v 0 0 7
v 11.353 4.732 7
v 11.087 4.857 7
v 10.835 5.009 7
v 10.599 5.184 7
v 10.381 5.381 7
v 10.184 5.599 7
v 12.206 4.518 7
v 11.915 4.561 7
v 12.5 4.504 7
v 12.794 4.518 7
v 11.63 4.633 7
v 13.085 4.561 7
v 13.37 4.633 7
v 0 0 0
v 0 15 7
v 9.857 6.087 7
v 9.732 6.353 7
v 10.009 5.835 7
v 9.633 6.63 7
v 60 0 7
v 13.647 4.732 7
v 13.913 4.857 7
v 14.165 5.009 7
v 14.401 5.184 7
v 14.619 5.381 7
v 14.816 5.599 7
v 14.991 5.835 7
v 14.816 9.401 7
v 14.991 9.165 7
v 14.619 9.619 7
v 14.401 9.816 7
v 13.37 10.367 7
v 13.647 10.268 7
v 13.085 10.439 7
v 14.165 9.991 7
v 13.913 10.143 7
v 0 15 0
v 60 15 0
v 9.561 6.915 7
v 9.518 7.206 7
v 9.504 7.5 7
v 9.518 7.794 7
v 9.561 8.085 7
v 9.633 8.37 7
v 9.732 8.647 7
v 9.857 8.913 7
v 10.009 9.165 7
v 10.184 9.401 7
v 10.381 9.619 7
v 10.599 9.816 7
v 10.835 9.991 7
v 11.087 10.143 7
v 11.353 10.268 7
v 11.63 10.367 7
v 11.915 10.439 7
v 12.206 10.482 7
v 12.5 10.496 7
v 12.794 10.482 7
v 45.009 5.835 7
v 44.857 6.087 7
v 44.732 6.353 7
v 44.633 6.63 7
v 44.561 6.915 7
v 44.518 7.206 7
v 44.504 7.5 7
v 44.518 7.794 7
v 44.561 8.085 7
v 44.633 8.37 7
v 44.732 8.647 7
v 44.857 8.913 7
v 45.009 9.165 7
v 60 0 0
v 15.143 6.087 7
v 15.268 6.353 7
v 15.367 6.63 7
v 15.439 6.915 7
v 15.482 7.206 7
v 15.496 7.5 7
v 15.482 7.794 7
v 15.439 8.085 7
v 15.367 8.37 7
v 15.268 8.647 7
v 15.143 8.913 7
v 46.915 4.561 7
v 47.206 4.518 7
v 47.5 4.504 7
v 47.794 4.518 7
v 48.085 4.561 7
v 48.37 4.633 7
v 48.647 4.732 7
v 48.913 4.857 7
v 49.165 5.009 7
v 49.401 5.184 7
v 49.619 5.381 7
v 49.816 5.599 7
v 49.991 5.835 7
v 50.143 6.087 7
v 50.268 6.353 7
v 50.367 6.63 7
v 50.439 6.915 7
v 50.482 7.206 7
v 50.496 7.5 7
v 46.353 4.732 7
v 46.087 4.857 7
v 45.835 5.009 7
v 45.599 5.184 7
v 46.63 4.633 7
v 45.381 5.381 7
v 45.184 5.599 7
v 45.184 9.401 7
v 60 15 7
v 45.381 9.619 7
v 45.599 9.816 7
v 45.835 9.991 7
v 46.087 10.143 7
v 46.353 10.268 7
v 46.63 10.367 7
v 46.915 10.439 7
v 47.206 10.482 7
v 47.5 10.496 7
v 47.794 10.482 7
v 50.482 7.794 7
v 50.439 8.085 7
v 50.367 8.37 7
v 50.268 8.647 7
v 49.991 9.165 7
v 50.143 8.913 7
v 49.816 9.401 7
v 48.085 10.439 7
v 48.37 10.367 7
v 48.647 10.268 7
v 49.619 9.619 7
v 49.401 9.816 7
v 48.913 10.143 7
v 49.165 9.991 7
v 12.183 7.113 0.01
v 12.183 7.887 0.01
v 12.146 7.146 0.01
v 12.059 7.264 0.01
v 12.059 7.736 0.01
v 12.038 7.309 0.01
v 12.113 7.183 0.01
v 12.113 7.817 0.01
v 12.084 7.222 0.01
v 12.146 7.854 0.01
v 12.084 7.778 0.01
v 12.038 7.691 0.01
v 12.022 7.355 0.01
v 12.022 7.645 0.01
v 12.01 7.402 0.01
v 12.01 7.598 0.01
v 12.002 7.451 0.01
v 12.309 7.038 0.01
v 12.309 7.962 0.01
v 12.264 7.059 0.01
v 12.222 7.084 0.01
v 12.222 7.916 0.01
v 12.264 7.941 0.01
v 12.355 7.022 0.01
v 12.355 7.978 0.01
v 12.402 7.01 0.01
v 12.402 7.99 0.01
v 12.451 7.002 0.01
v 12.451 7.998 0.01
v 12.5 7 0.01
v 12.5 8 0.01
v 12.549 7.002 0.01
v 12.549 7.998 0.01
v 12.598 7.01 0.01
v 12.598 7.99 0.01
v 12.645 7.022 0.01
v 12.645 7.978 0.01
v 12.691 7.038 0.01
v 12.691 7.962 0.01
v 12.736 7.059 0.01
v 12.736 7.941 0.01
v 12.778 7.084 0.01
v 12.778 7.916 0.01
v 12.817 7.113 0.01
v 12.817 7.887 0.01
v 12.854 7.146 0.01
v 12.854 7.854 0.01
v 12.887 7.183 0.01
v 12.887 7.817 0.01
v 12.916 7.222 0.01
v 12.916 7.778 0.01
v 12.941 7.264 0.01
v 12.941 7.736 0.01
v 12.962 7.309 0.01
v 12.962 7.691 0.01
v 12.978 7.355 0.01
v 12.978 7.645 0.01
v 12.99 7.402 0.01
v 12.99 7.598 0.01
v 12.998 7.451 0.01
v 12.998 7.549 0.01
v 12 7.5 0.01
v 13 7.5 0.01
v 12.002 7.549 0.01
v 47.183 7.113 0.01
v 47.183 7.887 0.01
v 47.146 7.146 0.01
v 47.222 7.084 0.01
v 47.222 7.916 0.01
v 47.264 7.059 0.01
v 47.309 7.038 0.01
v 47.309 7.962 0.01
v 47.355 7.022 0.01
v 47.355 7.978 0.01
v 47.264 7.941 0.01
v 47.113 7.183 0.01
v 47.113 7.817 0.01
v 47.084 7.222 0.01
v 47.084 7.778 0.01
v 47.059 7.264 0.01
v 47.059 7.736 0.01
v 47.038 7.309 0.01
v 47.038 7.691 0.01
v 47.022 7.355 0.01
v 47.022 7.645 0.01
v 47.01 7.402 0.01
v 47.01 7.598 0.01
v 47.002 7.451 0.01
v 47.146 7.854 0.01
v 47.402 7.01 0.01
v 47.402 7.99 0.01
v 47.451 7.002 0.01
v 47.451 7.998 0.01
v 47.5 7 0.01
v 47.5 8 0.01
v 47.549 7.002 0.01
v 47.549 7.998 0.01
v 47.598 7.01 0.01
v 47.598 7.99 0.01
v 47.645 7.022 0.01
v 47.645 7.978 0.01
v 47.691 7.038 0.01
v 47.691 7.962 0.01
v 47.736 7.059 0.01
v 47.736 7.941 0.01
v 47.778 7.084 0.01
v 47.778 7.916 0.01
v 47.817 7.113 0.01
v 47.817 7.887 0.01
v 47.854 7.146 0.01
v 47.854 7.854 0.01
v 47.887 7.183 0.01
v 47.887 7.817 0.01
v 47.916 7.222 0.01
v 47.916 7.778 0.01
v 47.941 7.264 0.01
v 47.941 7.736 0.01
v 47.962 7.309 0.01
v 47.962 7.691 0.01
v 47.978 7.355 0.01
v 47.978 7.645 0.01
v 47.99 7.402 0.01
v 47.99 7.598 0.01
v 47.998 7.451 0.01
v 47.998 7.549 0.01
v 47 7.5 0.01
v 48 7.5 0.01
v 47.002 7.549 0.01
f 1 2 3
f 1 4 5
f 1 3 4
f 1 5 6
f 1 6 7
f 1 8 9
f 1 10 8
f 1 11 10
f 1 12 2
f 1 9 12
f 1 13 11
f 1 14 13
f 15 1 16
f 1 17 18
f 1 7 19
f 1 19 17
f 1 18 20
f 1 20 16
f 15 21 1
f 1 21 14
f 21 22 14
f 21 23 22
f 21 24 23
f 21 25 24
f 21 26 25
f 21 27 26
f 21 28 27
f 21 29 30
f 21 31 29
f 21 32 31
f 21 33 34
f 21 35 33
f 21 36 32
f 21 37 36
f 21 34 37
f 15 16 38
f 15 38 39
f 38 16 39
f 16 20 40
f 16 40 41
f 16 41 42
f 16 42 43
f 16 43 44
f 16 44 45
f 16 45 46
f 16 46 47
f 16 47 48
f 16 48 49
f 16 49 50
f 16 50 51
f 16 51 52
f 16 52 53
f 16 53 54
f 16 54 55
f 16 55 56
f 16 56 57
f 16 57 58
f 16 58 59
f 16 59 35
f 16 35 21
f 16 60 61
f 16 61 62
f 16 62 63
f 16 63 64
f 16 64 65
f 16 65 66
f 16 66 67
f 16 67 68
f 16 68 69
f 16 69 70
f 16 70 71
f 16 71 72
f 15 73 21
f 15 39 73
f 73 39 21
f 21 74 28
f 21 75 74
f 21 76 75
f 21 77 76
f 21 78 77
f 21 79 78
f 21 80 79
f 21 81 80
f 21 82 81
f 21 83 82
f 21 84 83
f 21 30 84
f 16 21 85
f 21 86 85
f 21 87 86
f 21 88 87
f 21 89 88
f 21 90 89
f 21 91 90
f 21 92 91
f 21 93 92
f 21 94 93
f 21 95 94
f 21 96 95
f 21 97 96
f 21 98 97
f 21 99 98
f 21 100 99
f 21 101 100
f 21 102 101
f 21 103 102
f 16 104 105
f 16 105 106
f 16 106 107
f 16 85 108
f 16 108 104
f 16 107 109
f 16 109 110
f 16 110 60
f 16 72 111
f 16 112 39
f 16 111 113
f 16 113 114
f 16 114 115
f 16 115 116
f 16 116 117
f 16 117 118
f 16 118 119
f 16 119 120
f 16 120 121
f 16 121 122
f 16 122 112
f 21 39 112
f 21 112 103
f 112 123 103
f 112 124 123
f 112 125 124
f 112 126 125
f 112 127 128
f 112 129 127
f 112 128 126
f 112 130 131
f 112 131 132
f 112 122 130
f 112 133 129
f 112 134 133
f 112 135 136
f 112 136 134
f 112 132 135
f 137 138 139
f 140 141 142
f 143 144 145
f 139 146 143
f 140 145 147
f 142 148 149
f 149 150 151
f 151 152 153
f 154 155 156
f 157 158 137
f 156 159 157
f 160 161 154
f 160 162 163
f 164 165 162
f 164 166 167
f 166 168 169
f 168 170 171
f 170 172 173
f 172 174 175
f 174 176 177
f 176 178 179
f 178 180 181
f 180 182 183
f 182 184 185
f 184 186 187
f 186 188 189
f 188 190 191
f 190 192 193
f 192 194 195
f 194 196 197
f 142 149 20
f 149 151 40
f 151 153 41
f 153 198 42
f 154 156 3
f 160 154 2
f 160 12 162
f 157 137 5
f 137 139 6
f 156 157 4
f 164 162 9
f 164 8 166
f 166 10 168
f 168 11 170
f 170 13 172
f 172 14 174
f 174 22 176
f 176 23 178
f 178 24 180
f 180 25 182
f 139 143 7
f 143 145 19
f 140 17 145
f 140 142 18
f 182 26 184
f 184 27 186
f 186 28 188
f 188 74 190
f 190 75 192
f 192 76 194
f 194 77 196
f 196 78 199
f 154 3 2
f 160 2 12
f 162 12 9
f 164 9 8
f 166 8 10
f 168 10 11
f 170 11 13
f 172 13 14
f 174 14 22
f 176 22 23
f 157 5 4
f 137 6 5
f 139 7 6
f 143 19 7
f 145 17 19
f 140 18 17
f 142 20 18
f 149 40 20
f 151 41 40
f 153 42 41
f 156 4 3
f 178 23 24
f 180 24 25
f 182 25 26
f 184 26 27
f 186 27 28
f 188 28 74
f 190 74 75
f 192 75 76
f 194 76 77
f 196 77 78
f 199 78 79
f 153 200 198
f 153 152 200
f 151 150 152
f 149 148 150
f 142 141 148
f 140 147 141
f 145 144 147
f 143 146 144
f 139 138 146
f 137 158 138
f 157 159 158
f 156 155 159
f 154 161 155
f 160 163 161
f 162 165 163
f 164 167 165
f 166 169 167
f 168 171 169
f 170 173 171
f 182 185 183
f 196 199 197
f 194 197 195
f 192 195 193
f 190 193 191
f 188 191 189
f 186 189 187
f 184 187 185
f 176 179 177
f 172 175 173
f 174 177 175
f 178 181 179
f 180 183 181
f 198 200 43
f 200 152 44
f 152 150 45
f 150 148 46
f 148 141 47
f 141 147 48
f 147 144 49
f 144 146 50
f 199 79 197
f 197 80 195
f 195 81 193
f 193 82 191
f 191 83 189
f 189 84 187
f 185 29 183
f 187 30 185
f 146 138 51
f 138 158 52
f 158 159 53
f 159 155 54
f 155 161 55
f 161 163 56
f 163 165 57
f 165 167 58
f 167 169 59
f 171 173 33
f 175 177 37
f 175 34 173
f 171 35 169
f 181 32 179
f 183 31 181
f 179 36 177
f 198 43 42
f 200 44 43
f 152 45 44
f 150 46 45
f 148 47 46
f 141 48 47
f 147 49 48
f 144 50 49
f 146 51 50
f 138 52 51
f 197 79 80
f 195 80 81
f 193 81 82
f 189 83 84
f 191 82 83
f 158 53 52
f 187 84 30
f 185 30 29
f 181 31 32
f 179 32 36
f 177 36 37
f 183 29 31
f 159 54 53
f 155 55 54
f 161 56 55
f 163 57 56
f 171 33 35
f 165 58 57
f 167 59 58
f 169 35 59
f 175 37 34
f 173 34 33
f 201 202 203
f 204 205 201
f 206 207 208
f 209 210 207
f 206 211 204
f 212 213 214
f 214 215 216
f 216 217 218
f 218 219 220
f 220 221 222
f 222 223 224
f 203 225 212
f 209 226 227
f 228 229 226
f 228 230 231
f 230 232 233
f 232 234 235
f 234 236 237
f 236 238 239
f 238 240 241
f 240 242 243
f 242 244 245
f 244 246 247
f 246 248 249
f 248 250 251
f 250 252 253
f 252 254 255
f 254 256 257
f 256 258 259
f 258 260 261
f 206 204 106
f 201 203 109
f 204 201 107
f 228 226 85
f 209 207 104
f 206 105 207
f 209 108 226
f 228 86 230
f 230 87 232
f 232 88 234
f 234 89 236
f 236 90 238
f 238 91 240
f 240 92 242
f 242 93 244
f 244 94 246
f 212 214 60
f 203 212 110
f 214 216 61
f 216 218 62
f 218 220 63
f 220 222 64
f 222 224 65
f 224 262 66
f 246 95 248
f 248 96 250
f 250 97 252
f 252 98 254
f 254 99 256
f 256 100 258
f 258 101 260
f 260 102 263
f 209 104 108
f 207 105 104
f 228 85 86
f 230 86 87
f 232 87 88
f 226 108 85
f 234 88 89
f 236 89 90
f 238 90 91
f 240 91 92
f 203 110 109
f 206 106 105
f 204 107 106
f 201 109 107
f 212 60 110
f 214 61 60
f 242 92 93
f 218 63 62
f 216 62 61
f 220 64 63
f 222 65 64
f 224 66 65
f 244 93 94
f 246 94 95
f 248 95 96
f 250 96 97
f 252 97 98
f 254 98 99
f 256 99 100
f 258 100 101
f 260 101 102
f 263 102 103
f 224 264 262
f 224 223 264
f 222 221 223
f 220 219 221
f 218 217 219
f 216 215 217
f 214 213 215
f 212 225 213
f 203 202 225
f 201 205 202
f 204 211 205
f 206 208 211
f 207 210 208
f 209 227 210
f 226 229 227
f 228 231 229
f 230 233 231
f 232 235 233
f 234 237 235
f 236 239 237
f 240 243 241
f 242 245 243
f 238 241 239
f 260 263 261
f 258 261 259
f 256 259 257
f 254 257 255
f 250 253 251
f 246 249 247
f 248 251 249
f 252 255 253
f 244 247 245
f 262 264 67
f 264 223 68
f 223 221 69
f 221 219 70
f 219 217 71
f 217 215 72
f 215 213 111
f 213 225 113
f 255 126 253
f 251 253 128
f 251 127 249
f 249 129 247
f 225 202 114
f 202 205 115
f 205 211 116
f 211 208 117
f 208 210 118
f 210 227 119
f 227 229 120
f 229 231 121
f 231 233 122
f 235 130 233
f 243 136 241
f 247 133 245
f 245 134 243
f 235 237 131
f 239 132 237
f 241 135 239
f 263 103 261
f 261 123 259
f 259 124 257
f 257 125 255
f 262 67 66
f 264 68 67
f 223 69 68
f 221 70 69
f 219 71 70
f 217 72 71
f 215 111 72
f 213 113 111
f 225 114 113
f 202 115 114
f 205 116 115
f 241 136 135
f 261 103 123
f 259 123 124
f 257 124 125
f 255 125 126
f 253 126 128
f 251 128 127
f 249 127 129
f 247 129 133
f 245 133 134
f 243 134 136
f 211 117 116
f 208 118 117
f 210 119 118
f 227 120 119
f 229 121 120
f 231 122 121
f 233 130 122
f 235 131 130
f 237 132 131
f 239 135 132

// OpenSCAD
length = 60;
width = 15;
height = 7;

screw_spacing = 35;

cone_top_dia = 6;
cone_tip_dia = 1;
cone_depth = 7;

$fn = 64;

module cone_recess() {
    translate([0, 0, height - cone_depth + 0.01])
        cylinder(h = cone_depth, d1 = cone_tip_dia, d2 = cone_top_dia);
}

difference() {
    cube([length, width, height]);

    translate([(length - screw_spacing) / 2, width / 2, 0]) cone_recess();
    translate([(length + screw_spacing) / 2, width / 2, 0]) cone_recess();
}
